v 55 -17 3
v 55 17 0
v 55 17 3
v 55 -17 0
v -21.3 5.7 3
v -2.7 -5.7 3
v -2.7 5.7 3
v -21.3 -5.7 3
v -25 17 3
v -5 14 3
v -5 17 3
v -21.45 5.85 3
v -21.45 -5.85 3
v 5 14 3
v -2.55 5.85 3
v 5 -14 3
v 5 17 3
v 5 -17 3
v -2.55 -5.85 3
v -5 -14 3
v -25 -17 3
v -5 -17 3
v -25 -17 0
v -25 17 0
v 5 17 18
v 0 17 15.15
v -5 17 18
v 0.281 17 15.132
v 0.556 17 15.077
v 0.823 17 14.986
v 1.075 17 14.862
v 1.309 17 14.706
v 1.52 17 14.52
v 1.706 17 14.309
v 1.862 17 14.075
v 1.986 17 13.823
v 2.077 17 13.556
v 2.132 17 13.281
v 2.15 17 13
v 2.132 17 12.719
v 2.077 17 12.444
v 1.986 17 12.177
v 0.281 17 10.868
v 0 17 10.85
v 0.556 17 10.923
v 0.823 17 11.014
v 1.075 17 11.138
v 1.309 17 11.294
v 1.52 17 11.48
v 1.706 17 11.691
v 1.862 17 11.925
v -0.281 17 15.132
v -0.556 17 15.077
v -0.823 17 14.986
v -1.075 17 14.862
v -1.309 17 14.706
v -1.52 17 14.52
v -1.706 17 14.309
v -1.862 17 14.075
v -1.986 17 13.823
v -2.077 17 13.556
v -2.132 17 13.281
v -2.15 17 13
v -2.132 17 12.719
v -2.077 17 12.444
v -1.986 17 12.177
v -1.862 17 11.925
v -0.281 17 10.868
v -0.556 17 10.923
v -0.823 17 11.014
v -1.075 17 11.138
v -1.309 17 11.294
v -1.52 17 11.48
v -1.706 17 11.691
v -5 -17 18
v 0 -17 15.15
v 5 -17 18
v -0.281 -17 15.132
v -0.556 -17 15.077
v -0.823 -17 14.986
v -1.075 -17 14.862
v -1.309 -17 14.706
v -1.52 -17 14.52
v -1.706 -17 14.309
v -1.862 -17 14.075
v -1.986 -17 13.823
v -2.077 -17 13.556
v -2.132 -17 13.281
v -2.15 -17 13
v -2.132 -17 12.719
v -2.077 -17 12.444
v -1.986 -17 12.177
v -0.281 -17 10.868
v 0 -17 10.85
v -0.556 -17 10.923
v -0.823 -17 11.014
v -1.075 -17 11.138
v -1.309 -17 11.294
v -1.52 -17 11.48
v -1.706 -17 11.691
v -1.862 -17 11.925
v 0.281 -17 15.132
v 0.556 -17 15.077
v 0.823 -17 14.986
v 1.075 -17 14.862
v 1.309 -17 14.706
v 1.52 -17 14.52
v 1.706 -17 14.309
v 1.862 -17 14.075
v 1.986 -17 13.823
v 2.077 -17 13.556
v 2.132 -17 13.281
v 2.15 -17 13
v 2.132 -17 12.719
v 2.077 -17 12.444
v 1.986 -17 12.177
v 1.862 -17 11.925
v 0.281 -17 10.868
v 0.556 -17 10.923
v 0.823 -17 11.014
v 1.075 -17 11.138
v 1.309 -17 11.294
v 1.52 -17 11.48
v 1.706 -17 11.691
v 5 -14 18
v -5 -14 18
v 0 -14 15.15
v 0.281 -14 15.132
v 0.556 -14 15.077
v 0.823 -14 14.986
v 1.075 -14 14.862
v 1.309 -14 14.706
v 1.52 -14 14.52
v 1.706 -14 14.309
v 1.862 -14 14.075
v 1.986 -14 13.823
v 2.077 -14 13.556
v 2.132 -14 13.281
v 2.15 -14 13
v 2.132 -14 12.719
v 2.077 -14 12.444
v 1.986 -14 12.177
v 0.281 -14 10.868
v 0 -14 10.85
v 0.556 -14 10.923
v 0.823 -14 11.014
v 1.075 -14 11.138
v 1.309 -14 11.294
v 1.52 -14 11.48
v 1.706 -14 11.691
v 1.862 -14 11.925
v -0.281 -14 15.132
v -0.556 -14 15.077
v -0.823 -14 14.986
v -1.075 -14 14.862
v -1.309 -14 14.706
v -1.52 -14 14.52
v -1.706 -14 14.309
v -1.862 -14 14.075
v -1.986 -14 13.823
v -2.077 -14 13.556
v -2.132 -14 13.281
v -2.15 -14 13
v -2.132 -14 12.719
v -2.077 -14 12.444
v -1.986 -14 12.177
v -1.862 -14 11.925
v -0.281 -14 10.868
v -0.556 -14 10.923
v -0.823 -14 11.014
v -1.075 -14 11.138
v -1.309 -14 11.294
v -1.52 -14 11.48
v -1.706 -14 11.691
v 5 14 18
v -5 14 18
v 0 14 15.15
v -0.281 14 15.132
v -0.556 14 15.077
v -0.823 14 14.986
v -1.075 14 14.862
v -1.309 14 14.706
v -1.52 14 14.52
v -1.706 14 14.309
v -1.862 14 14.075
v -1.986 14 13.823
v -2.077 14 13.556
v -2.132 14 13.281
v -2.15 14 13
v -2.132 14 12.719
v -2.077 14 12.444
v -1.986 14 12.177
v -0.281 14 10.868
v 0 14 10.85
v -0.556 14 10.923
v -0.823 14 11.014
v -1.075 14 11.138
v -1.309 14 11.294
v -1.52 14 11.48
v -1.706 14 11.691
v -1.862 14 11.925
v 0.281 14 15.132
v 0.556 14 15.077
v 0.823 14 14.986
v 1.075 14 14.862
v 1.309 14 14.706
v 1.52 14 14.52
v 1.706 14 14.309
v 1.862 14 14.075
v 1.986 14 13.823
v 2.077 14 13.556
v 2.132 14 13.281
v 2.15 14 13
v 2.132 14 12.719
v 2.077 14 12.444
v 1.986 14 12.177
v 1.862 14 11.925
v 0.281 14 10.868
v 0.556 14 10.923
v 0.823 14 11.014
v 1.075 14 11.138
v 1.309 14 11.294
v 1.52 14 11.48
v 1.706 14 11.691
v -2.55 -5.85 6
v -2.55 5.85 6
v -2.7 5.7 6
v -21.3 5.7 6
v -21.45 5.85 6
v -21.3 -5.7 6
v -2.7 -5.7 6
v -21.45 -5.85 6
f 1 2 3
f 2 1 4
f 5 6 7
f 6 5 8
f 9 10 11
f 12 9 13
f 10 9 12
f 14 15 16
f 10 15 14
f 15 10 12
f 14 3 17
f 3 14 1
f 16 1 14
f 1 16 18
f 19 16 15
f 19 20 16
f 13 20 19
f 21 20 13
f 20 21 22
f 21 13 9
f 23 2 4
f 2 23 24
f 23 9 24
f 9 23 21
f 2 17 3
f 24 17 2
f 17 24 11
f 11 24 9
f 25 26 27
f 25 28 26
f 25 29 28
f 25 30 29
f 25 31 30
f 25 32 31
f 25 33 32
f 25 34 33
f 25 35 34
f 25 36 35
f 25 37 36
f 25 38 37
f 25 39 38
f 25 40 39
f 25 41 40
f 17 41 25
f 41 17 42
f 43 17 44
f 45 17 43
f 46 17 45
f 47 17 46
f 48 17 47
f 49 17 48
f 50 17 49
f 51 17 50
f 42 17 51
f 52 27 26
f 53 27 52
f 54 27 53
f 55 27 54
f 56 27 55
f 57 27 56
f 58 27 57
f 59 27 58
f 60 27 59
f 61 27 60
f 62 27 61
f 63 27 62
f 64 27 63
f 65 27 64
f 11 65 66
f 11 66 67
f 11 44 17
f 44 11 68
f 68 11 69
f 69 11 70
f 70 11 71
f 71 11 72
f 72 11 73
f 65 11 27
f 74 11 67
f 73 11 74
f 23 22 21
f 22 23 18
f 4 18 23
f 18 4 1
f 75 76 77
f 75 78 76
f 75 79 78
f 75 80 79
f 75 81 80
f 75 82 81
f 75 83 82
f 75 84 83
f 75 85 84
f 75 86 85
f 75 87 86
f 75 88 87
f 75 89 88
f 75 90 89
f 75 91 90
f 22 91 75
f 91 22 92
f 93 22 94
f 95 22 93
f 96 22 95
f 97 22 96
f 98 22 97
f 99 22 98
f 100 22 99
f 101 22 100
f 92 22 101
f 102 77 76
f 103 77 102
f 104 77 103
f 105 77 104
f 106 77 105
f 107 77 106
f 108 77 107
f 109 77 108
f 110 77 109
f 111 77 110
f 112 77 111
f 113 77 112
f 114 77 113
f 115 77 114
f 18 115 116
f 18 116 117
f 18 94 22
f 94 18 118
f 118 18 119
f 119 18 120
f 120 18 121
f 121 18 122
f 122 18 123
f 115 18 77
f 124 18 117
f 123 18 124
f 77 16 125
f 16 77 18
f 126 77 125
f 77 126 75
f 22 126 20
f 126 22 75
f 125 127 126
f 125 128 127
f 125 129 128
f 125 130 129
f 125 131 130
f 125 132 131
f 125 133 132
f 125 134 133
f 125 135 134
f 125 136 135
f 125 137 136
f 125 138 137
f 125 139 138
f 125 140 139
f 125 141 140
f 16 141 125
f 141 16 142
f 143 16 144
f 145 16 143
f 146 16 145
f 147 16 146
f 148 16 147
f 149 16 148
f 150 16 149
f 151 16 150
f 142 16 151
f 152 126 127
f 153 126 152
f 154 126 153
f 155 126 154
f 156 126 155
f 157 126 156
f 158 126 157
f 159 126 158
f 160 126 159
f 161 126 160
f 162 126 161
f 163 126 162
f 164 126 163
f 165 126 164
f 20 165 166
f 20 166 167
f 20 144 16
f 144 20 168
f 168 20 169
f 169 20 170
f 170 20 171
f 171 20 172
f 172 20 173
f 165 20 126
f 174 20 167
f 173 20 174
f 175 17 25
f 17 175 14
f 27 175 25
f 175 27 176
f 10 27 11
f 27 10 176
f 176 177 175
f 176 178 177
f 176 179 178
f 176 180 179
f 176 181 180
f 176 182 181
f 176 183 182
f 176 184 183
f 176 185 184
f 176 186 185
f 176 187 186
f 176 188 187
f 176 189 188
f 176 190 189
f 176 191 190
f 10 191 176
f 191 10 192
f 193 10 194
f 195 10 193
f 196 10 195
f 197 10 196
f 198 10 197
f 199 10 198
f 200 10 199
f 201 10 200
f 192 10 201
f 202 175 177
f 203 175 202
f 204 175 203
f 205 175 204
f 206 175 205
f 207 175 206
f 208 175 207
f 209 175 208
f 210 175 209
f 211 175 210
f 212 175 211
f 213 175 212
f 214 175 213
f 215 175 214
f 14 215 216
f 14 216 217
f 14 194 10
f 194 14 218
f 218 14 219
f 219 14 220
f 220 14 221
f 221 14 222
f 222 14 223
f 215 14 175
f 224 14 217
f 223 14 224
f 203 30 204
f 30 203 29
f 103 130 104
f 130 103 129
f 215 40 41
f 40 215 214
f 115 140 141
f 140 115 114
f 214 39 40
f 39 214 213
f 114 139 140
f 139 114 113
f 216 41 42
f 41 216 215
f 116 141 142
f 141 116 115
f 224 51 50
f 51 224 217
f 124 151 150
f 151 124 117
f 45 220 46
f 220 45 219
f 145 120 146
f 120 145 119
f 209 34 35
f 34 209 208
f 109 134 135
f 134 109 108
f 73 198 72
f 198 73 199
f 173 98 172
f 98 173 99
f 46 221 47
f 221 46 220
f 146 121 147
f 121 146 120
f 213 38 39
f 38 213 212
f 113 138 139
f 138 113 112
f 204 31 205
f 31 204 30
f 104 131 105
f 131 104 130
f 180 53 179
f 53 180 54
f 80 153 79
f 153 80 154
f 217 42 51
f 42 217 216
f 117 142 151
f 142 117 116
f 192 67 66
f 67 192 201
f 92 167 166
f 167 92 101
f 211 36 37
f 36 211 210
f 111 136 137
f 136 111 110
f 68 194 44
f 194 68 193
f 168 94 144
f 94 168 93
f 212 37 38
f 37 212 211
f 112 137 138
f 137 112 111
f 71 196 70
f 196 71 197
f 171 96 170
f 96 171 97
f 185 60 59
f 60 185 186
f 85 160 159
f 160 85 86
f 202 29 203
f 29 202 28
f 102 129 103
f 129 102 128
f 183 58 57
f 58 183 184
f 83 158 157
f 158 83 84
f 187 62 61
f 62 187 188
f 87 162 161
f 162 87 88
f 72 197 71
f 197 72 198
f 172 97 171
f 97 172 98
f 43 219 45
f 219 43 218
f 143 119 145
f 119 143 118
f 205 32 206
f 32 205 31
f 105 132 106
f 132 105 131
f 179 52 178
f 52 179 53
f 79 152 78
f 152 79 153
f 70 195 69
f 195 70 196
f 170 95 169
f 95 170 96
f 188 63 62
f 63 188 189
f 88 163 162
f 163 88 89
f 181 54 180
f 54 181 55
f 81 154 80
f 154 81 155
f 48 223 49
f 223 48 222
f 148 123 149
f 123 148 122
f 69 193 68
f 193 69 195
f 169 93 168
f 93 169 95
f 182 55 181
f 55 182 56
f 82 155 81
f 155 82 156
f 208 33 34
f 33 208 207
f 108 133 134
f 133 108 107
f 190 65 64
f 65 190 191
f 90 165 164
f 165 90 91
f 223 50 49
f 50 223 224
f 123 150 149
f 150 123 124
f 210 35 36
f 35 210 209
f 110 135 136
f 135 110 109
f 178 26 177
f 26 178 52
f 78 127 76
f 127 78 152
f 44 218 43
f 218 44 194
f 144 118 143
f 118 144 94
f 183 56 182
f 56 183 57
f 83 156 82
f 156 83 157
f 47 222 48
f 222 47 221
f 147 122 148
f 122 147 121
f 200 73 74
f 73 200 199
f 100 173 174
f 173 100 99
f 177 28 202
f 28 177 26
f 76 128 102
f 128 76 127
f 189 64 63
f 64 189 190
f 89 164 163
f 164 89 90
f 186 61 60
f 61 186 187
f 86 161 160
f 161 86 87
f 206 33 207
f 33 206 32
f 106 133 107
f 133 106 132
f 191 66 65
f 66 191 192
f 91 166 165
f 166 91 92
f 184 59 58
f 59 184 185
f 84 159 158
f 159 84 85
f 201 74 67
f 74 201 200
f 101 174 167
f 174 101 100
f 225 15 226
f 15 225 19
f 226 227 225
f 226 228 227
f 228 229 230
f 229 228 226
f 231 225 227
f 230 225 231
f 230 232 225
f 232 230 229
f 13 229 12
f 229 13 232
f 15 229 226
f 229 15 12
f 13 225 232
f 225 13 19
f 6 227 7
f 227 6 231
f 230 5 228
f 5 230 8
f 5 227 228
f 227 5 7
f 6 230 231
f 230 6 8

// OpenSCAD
// file: params.scad
// Shared measurements for the hookswitch assembly (handset / hook / cradle / switch).
// Real caliper measurements taken 2026-07-20 (see CAD-BACKLOG.md) — no
// longer placeholders. switch_screw_d is still a guess (pin/screw size
// wasn't calipered); verify before drilling.

// --- Handset ---
// Measured handle neck width 32.8mm; +0.6mm printer clearance so the
// barrel doesn't bind in the trough (phone_saddle.scad cuts this exact dia).
handset_barrel_d   = 32.8 + 0.6;  // = 33.4
handset_rest_len   = 60;   // length of barrel section that sits in the saddle (not calipered — neck length, adjust if handset sits too shallow/deep)

// --- Hook lever (see-saw pressed down by handset weight) ---
lever_length       = 70;
lever_width        = 22;
lever_thickness    = 5;
pivot_pin_d        = 4;    // diameter of the pivot rod/pin (e.g. M4 bolt or steel rod)
pivot_offset       = 20;   // distance from lever's front edge to the pivot axis

// --- Microswitch (measured: 3-pin lever subminiature microswitch) ---
switch_body_w      = 12.9;   // body length (L)
switch_body_d      = 5.7;    // body width/thickness (W)
switch_body_h      = 6.2;    // body height (H), excludes pins & lever button
switch_lever_ext   = 4.1;    // lever extension above body top — clear this in switch_mount_h
switch_mount_hole_spacing = 6.0;  // measured mounting hole pitch
switch_screw_d     = 2.2;        // NOT calipered — guess for M2 self-tap, verify against actual pins

// --- IR blaster (persona/channel-switch signaling, see PHILOSOPHY.md #5) ---
ir_led_d           = 5;    // standard 5mm IR LED
ir_mount_w         = 20;
ir_mount_h         = 12;

// --- Earcon speaker (small dedicated driver for crt-earcon.sh beeps,
// separate from the handset earpiece -- see IDLE-BAIT.md) ---
earcon_speaker_d   = 28;   // typical small round speaker (e.g. 28mm mini driver)
earcon_grille_hole_d = 2;
earcon_grille_hole_spacing = 4;

// --- General ---
wall               = 3;
clearance          = 0.3;  // fit clearance between mating printed parts
$fn                = 48;
// main file
// "cradle" part: the base body. Houses the pivot pin bosses for
// hook_lever.scad and a mounting pocket for switch_mount.scad, positioned
// so the lever's rear boss lands on the switch plunger at rest.
include <params.scad>

cradle_w = lever_width + wall*4;
cradle_l = lever_length + 10;
cradle_h = 22;

// switch_mount's base-plate footprint (must match switch_mount.scad)
switch_mount_w = switch_body_w + wall*2;
switch_mount_d = switch_body_d + wall*2;
socket_lip_h   = 3;      // height of the retaining rim, grips the base plate edge
socket_fit     = 0.3;    // interference: socket opening is footprint minus this

module cradle() {
  difference() {
    union() {
      // base
      translate([-pivot_offset - 5, -cradle_w/2, 0])
        cube([cradle_l, cradle_w, wall]);

      // pivot support walls, one each side, at x=0 (pivot axis)
      translate([-pivot_pin_d/2 - wall, -cradle_w/2, wall])
        cube([pivot_pin_d + wall*2, wall, lever_thickness + 10]);
      translate([-pivot_pin_d/2 - wall, cradle_w/2 - wall, wall])
        cube([pivot_pin_d + wall*2, wall, lever_thickness + 10]);
    }

    // pivot pin hole through both support walls
    translate([0, -cradle_w/2 - 1, wall + lever_thickness + 5])
      rotate([-90, 0, 0])
        cylinder(d = pivot_pin_d + clearance, h = cradle_w + 2);
  }

  // socket that switch_mount.scad's base plate press-fits into (no
  // screws). Position tuned so it's directly under hook_lever's rear
  // boss (at x = -pivot_offset + 8 in lever-local coords, pivot at x=0).
  translate([-pivot_offset + 8 - switch_mount_w/2, -switch_mount_d/2, wall])
    difference() {
      cube([switch_mount_w, switch_mount_d, socket_lip_h]);
      translate([socket_fit/2, socket_fit/2, -0.1])
        cube([switch_mount_w - socket_fit, switch_mount_d - socket_fit, socket_lip_h + 0.2]);
    }
}

cradle();
